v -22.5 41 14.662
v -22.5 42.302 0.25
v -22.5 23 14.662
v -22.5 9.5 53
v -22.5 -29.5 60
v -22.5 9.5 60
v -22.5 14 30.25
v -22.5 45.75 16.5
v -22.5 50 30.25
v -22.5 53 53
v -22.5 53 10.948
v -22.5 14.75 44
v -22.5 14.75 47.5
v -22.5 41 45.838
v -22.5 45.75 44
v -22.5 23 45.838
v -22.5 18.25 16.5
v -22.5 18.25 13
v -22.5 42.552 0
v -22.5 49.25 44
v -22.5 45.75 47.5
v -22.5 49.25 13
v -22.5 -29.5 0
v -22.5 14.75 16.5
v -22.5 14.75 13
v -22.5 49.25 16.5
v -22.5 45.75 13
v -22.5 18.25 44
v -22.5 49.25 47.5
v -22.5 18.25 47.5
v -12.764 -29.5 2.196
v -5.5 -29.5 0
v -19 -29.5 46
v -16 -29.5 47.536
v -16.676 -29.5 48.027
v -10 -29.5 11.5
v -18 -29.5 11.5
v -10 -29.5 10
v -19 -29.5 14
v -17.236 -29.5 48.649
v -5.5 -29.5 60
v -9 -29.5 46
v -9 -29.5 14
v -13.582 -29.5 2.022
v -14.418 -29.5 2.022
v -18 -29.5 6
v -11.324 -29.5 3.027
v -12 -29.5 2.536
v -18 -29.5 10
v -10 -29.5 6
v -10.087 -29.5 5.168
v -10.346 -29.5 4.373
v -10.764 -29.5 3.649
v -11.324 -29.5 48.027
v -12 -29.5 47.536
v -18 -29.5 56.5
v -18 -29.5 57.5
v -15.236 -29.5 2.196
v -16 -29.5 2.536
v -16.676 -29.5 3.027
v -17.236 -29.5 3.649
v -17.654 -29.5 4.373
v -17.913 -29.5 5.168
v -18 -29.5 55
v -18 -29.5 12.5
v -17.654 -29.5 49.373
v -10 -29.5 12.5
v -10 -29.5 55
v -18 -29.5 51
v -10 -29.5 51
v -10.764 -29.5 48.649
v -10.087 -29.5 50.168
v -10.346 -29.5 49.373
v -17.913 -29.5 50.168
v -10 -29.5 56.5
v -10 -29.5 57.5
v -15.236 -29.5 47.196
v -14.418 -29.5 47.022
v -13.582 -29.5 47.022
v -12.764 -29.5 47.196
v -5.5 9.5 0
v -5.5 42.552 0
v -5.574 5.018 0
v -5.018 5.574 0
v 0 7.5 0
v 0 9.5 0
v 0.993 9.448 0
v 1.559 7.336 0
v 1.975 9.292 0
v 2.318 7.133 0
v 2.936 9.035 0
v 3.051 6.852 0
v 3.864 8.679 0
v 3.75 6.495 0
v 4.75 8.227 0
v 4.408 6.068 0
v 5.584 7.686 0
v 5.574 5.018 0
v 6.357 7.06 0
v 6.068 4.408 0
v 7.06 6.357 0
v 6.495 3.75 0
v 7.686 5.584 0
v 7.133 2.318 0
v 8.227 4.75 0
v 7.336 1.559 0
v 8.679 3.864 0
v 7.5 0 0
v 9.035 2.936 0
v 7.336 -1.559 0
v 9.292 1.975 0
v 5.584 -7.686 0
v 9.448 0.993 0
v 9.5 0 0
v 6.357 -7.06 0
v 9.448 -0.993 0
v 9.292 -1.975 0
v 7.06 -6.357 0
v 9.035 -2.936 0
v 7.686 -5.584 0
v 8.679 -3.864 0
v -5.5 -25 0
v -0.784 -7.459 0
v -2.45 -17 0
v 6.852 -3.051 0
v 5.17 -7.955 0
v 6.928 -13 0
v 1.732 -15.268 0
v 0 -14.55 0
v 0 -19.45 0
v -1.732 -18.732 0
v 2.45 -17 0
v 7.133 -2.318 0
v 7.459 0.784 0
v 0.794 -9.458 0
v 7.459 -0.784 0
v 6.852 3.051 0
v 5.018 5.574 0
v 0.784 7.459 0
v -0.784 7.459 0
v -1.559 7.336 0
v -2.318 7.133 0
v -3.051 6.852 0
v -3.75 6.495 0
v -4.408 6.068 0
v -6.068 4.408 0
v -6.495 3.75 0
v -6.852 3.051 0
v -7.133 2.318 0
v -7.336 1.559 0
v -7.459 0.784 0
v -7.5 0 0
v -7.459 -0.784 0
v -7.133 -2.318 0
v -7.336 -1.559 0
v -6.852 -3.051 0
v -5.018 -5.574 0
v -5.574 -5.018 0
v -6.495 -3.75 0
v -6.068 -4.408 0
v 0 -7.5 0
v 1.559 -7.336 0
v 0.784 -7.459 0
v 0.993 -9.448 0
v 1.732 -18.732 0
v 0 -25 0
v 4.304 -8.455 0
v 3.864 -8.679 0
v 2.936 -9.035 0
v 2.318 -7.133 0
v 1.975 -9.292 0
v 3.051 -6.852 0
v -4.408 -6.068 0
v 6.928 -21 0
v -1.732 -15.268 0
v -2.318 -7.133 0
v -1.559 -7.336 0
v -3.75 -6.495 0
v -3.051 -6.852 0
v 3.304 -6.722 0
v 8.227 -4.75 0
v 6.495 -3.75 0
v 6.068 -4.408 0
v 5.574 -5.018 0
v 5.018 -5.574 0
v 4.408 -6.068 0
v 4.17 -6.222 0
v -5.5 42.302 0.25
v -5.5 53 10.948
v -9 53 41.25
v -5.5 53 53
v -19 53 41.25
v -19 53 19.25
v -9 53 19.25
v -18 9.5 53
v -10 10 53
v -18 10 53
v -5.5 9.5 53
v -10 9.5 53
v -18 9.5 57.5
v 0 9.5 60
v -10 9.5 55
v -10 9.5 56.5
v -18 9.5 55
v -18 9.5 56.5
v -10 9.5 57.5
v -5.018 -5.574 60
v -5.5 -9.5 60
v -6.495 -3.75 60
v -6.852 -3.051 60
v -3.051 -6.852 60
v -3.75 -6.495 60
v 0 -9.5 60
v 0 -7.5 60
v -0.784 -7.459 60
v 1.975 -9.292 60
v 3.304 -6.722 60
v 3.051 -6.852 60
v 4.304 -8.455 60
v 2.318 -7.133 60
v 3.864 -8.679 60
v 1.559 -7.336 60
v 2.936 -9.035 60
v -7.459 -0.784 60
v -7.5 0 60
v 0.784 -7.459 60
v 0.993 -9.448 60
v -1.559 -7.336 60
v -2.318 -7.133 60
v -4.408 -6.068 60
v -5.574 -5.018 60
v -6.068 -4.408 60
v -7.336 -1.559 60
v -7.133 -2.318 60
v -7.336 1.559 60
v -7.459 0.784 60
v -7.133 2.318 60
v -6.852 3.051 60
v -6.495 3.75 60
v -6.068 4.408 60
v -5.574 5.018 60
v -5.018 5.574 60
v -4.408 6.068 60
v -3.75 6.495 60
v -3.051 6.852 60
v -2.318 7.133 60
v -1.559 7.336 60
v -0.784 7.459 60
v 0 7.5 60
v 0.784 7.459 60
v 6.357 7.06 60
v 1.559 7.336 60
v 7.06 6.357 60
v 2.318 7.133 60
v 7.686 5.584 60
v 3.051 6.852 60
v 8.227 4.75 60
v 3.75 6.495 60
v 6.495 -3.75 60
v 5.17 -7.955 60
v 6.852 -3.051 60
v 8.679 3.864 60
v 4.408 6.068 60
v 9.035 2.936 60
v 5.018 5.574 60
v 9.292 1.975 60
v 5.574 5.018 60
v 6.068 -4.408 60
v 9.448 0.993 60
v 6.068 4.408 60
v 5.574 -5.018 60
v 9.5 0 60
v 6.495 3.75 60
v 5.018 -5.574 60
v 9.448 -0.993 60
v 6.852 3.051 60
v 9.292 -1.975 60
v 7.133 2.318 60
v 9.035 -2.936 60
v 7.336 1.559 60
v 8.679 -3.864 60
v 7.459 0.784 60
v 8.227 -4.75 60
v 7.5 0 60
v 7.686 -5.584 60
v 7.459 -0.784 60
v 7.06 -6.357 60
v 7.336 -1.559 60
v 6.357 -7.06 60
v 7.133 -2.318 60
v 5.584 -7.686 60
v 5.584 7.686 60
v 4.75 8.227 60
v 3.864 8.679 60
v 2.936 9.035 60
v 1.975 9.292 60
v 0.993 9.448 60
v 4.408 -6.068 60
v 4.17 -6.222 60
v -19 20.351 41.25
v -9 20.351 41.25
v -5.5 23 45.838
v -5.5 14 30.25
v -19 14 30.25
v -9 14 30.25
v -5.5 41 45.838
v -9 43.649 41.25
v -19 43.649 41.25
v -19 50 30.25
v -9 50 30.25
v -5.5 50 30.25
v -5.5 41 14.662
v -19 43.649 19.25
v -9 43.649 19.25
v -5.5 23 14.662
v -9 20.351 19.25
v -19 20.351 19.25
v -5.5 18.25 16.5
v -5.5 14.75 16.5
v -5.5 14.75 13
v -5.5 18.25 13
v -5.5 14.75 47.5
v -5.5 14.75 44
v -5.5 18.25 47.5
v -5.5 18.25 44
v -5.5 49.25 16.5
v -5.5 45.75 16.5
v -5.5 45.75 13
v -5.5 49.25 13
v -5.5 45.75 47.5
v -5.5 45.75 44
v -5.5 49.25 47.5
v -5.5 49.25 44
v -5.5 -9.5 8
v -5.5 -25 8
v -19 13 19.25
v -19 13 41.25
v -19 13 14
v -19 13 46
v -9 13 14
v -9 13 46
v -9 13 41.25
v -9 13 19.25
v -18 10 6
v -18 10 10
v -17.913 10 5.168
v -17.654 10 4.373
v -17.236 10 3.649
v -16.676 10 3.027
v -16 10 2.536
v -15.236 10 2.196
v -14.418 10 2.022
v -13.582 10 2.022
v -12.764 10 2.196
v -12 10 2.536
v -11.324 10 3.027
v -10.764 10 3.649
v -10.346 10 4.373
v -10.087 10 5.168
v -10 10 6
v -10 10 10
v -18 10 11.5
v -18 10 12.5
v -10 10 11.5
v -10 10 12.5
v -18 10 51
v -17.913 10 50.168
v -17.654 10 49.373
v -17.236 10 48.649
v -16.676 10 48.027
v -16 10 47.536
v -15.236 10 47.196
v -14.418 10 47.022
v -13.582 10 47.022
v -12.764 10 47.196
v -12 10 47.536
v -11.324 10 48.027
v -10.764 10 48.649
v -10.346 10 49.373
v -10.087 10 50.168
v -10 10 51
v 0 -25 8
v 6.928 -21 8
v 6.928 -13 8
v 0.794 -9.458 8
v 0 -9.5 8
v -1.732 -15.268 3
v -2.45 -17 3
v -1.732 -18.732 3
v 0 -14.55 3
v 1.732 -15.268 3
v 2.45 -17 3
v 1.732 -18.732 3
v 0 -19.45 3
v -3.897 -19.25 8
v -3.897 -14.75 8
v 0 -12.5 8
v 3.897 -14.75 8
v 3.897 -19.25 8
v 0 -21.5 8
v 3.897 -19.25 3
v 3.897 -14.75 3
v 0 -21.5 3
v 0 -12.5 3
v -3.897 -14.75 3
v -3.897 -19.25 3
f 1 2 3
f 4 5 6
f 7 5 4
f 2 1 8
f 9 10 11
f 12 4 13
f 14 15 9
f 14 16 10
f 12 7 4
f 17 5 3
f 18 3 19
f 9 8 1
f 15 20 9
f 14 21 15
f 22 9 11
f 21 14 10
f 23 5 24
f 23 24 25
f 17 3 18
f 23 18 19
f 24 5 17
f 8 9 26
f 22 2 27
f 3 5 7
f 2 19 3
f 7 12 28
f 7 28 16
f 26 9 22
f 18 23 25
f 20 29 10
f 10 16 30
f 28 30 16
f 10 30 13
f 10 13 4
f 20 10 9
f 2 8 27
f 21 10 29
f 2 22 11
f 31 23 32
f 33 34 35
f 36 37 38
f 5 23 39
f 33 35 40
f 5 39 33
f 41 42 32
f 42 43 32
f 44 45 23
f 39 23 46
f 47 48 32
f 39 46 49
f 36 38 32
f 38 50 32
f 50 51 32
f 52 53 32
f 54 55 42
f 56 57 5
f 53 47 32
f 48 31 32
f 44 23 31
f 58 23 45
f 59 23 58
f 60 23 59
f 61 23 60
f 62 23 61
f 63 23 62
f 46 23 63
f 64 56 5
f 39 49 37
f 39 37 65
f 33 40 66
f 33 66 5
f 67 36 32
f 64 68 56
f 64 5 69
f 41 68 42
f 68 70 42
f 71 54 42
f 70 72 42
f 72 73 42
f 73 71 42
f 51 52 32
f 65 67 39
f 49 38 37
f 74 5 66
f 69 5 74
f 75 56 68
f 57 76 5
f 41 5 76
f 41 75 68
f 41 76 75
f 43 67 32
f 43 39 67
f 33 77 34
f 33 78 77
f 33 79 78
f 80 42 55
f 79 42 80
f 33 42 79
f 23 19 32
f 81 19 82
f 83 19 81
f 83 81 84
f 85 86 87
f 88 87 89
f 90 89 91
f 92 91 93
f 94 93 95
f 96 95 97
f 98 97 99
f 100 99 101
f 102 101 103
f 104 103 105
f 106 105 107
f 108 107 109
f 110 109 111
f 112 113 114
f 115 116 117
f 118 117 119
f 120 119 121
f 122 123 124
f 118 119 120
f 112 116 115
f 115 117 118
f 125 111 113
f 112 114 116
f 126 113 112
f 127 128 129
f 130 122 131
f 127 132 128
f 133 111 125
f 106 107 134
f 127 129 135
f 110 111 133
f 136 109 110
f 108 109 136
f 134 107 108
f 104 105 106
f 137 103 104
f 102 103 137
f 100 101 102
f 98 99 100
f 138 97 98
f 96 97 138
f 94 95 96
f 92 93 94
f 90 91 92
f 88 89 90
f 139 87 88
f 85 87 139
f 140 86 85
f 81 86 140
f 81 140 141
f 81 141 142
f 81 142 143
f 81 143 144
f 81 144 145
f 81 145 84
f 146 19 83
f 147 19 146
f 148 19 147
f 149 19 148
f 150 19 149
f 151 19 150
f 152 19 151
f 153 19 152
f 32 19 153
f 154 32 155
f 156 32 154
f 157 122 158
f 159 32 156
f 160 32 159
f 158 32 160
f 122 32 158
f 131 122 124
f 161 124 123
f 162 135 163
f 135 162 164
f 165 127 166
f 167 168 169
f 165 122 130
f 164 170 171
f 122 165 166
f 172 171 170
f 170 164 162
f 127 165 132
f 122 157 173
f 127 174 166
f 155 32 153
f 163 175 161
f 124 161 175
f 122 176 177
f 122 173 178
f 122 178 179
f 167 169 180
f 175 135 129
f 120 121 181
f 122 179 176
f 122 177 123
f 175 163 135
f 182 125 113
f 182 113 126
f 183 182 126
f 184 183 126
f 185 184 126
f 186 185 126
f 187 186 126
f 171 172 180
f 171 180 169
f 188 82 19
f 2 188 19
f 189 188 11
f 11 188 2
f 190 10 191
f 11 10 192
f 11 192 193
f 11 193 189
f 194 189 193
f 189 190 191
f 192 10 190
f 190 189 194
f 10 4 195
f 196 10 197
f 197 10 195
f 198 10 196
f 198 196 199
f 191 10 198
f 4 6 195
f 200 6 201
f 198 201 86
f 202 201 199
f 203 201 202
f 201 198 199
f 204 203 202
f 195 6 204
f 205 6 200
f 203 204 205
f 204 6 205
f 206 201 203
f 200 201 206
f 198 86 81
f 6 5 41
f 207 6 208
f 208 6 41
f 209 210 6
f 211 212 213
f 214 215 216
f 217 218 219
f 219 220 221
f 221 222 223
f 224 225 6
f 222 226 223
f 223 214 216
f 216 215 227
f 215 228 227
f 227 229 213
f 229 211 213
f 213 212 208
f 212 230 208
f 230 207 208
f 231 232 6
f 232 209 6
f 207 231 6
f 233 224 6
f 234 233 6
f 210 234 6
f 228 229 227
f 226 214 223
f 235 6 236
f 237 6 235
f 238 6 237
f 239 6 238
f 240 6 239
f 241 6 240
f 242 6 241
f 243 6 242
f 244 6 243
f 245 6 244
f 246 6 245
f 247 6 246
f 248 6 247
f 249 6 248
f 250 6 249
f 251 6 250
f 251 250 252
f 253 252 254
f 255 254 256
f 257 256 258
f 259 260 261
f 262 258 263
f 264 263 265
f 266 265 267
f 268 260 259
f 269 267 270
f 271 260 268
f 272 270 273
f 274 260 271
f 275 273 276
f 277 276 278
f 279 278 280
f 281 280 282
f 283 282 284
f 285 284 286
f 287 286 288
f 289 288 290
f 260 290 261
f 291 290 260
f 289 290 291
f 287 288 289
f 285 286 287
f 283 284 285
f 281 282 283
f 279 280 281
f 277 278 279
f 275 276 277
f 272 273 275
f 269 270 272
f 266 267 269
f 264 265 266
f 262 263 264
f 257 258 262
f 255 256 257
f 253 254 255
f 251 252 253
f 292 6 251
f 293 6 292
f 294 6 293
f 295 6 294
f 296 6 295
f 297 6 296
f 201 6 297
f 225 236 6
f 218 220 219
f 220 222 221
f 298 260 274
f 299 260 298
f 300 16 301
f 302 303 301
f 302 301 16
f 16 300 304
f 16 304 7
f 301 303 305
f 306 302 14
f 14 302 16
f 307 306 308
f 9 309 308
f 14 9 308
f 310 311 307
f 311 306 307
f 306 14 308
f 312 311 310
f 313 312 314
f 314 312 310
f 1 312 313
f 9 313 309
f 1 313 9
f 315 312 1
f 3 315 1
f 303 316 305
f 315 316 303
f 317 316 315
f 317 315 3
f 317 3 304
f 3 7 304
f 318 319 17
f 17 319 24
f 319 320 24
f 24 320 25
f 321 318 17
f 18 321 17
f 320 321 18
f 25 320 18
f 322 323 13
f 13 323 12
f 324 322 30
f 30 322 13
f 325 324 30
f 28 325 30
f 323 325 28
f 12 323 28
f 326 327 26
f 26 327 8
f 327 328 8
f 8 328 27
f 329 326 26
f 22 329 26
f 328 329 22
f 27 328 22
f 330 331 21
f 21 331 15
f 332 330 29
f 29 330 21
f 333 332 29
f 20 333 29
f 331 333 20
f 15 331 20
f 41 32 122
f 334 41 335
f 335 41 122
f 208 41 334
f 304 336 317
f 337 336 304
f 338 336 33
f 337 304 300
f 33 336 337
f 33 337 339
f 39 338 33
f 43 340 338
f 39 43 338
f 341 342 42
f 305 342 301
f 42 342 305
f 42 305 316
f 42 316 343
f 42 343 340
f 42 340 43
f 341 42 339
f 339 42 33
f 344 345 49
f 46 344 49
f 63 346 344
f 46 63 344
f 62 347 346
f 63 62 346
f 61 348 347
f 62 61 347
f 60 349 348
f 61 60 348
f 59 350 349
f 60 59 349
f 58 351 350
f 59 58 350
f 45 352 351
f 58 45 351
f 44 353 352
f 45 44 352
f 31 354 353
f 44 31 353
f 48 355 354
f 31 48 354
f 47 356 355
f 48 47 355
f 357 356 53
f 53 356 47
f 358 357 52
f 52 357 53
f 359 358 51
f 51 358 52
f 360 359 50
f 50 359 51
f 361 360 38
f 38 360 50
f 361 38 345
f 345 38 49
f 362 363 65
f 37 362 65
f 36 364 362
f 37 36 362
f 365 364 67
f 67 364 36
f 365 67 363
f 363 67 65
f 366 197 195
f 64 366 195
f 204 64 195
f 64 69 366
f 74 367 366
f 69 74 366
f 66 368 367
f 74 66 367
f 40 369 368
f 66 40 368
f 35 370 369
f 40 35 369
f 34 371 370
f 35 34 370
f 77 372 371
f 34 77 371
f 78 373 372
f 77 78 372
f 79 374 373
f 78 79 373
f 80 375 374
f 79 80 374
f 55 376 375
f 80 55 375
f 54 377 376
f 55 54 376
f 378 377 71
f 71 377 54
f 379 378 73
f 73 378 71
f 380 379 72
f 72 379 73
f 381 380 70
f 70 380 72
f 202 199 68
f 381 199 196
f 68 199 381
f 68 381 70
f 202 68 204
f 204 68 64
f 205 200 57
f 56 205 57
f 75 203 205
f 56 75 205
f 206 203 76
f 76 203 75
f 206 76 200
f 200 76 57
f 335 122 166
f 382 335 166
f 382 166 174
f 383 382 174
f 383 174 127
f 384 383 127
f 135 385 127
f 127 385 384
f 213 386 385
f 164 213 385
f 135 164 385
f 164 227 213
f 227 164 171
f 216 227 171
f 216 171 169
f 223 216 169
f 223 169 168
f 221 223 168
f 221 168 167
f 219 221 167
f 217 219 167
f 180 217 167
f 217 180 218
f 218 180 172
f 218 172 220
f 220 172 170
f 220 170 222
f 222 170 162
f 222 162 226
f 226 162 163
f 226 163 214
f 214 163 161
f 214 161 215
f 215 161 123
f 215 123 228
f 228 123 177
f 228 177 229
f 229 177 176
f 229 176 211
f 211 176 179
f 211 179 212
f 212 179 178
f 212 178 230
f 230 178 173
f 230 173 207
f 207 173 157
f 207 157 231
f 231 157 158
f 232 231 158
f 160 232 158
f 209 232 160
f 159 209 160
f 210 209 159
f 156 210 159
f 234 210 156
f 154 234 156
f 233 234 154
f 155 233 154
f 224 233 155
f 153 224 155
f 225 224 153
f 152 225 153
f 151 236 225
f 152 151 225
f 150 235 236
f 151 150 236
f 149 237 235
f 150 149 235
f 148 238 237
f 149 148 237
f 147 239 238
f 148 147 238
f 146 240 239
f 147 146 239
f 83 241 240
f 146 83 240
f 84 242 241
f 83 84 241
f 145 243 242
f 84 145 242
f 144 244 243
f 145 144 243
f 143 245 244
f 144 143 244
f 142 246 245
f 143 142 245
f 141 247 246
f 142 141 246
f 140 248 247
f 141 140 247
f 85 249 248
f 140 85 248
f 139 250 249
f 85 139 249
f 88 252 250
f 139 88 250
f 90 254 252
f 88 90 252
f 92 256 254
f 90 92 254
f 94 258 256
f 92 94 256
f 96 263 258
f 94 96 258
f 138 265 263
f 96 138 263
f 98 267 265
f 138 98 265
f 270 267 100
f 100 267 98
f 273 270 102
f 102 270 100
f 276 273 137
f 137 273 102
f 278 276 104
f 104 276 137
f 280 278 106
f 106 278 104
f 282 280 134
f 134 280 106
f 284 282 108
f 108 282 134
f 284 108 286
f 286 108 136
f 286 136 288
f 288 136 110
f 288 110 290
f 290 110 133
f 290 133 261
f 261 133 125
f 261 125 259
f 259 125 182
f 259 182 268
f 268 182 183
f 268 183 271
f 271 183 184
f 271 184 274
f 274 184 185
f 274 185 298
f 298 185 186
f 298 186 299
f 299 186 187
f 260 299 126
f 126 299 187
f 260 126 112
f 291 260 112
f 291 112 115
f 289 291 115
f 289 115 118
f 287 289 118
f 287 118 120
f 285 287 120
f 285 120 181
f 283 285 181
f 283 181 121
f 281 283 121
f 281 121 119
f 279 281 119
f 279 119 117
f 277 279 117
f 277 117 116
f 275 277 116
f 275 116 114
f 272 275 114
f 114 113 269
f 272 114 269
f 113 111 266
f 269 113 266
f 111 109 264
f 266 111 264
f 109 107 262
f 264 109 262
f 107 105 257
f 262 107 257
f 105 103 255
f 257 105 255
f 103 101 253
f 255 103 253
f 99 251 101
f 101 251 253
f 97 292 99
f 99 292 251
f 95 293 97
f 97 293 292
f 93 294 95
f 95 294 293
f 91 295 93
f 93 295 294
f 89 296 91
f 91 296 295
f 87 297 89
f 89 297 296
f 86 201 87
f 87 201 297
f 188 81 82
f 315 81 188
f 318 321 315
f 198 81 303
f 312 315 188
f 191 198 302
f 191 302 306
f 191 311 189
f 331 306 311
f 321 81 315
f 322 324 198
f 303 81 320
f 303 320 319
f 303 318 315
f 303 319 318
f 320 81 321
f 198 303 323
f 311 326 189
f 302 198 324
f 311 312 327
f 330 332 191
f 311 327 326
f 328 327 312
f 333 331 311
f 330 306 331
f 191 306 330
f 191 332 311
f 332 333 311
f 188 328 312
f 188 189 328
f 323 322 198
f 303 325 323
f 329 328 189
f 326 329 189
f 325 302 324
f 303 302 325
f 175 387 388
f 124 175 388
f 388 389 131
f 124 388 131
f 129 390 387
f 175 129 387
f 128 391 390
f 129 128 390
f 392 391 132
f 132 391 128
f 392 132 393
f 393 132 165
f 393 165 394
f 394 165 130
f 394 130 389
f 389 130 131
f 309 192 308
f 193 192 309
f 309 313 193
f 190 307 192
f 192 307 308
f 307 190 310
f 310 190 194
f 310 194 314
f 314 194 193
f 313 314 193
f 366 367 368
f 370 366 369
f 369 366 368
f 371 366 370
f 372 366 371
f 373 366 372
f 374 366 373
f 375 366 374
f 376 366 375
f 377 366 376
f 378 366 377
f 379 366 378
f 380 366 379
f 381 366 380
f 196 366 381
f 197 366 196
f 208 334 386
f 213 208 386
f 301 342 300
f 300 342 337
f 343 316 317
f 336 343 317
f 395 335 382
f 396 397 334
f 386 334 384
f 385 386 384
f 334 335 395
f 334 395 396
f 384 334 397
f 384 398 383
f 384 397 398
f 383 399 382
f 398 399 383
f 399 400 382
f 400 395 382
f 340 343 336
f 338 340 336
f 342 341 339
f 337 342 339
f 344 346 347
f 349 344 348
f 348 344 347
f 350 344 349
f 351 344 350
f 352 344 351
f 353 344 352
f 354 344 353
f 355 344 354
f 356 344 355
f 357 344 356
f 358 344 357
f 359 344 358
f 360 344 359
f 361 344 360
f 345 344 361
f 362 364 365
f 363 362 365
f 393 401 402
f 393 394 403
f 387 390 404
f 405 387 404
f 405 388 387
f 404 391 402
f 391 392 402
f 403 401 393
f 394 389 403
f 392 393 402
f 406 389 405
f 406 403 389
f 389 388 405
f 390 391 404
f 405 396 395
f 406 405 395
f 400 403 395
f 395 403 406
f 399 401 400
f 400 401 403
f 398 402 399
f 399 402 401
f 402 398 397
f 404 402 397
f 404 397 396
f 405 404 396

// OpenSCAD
// file: inc/bearing.scad
// PRUSA iteration3
// Bearing holders
// GNU GPL v3
// Josef Průša <iam@josefprusa.cz> and contributors
// http://www.reprap.org/wiki/Prusa_Mendel
// http://prusamendel.org

bearing_diameter = 15;

module horizontal_bearing_base(bearings=1){
 translate(v=[0,0,6]) cube(size = [24,8+bearings*25,12], center = true);	
}
module horizontal_bearing_holes(bearings=1){
 cutter_lenght = 10+bearings*25;
 one_holder_lenght = 8+25;
 holder_lenght = 8+bearings*25;
 
 // Main bearing cut
 difference(){
  translate(v=[0,0,12]) rotate(a=[90,0,0]) translate(v=[0,0,-cutter_lenght/2]) cylinder(h = cutter_lenght, r=bearing_diameter/2, $fn=50);
  // Bearing retainers
  translate(v=[0,1-holder_lenght/2,3]) cube(size = [24,6,8], center = true);
  translate(v=[0,-1+holder_lenght/2,3]) cube(size = [24,6,8], center = true);
 }
 
 // Ziptie cutouts
 ziptie_cut_ofset = 0;
 for ( i = [0 : bearings-1] ){
  // For easier positioning I move them by half of one 
  // bearing holder then add each bearign lenght and then center again
  translate(v=[0,-holder_lenght/2,0]) translate(v=[0,one_holder_lenght/2+i*25,0]) difference(){
   union(){
    translate(v=[0,2-6,12]) rotate(a=[90,0,0]) translate(v=[0,0,0]) cylinder(h = 4, r=12.5, $fn=50);
    translate(v=[0,2+6,12]) rotate(a=[90,0,0]) translate(v=[0,0,0]) cylinder(h = 4, r=12.5, $fn=50);
   }
   translate(v=[0,10,12]) rotate(a=[90,0,0]) translate(v=[0,0,0]) cylinder(h = 24, r=10, $fn=50);
  }
 }
 
}

module horizontal_bearing_test(){
 difference(){
  horizontal_bearing_base(1);
  horizontal_bearing_holes(1);
 }
 translate(v=[30,0,0]) difference(){
  horizontal_bearing_base(2);
  horizontal_bearing_holes(2);
 }
 translate(v=[60,0,0]) difference(){
  horizontal_bearing_base(3);
  horizontal_bearing_holes(3);
 }
}



thinwall = 2;
bearing_size = bearing_diameter + 2 * thinwall;

module vertical_bearing_base(){
 translate(v=[-2-bearing_size/4,0,30]) cube(size = [4+bearing_size/2,bearing_size,60], center = true);
 cylinder(h = 60, r=bearing_size/2, $fn = 60);
}

module vertical_bearing_holes(){
  translate(v=[0,0,-1]) cylinder(h = 62, r=bearing_diameter/2, $fn = 60);
  rotate(a=[0,0,-60]) translate(v=[10,0,31]) cube(size = [10,1,62], center = true);
}

difference(){
vertical_bearing_base();
vertical_bearing_holes();
}
// file: ../configuration.scad
x_rod_distance = 45;

// Select your belt type ******************************************************

//T2.5
belt_tooth_distance = 2.5;
belt_tooth_ratio = 0.5;

//T5 (strongly discouraged)
//belt_tooth_distance = 5;
//belt_tooth_ratio = 0.75;

//HTD3
//belt_tooth_distance = 3;
//belt_tooth_ratio = 0.75;

//MXL
//belt_tooth_distance = 2.032;
//belt_tooth_ratio = 0.64;

// Select your hot-end mount ******************************************************

// 0 = none; 1 = groove-mount (J-head/MakerGear etc.)
hotend_mount = 1;

hotend_groovemount_depth = 5;
hotend_groovemount_diameter = 11.05;
// file: inc/x-end.scad
// PRUSA iteration3
// X end prototype
// GNU GPL v3
// Josef Průša <iam@josefprusa.cz> and contributors
// http://www.reprap.org/wiki/Prusa_Mendel
// http://prusamendel.org

include <../../configuration.scad>
use <bearing.scad>

module x_end_base(){
// Main block
translate(v=[-14,-10,30]) cube(size = [17,39,60], center = true);
// Bearing holder
vertical_bearing_base();	
//Nut trap
 // Cube
 translate(v=[-2-2,-17,4]) cube(size = [8,16,8], center = true);
 // Hexagon
 translate(v=[0,-17,0]) rotate([0,0,30]) cylinder(h = 8, r=8, $fn = 6);
}

module x_end_holes(){
vertical_bearing_holes();
// Belt hole
translate(v=[-5.5-10+1.5,-10,30]) cube(size = [10,46,32], center = true);
// Bottom pushfit rod
translate(v=[-14,-40,6]) rotate(a=[-90,0,0]) pushfit_rod(8,50);
// Top pushfit rod
translate(v=[-14,-40,x_rod_distance+6]) rotate(a=[-90,0,0]) pushfit_rod(8,50);
// Nut trap
 translate(v=[0,-17,-1]) cylinder(h = 10, r=2.45);
 translate(v=[0,-17,3]) rotate([0,0,30]) cylinder(h = 5, r=4.5, $fn = 6);
}


// Final prototype
module x_end_plain(){
 difference(){
  x_end_base();
  x_end_holes();
 }
}

//x_end_plain();


module pushfit_rod(diameter,length){
 cylinder(h = length, r=diameter/2, $fn=30);
 translate(v=[0,-diameter/4,length/2]) cube(size = [diameter,diameter/2,length], center = true);
 translate(v=[0,-diameter/2-2,length/2]) cube(size = [diameter,1,length], center = true);
}
// main file
// PRUSA iteration3
// X end motor
// GNU GPL v3
// Josef Průša <iam@josefprusa.cz> and contributors
// http://www.reprap.org/wiki/Prusa_Mendel
// http://prusamendel.org

use <inc/x-end.scad>

module x_end_motor_base(){
 x_end_base();
 translate(v=[-14,31,26.5]) cube(size = [17,44,53], center = true);
}

module x_end_motor_holes(){
 x_end_holes();
 // Position to place
 translate(v=[-0,32,30.25]){
  // Belt hole
  translate(v=[-14,1,0]) cube(size = [10,46,22], center = true);
  // Motor mounting holes
  translate(v=[-10,-15.5,-15.5]) cube(size = [60,3.5,3.5], center = true);
  translate(v=[-10,-15.5,15.5]) cube(size = [60,3.5,3.5], center = true);
  translate(v=[-10,15.5,-15.5]) cube(size = [60,3.5,3.5], center = true);
  translate(v=[-10,15.5,15.5]) cube(size = [60,3.5,3.5], center = true);
  // Material saving cutout
  translate(v=[-10,40,-30]) rotate(a=[45,0,0])  cube(size = [60,42,42], center = true);
  // Motor shaft cutout
  translate(v=[0,0,0]) rotate(a=[0,-90,0]) rotate(a=[0,0,90]) cylinder(h = 80, r=18, $fn=6);
 }
}

// Final part
module x_end_motor(){
 difference(){
  x_end_motor_base();
  x_end_motor_holes();
 }
}

x_end_motor();
